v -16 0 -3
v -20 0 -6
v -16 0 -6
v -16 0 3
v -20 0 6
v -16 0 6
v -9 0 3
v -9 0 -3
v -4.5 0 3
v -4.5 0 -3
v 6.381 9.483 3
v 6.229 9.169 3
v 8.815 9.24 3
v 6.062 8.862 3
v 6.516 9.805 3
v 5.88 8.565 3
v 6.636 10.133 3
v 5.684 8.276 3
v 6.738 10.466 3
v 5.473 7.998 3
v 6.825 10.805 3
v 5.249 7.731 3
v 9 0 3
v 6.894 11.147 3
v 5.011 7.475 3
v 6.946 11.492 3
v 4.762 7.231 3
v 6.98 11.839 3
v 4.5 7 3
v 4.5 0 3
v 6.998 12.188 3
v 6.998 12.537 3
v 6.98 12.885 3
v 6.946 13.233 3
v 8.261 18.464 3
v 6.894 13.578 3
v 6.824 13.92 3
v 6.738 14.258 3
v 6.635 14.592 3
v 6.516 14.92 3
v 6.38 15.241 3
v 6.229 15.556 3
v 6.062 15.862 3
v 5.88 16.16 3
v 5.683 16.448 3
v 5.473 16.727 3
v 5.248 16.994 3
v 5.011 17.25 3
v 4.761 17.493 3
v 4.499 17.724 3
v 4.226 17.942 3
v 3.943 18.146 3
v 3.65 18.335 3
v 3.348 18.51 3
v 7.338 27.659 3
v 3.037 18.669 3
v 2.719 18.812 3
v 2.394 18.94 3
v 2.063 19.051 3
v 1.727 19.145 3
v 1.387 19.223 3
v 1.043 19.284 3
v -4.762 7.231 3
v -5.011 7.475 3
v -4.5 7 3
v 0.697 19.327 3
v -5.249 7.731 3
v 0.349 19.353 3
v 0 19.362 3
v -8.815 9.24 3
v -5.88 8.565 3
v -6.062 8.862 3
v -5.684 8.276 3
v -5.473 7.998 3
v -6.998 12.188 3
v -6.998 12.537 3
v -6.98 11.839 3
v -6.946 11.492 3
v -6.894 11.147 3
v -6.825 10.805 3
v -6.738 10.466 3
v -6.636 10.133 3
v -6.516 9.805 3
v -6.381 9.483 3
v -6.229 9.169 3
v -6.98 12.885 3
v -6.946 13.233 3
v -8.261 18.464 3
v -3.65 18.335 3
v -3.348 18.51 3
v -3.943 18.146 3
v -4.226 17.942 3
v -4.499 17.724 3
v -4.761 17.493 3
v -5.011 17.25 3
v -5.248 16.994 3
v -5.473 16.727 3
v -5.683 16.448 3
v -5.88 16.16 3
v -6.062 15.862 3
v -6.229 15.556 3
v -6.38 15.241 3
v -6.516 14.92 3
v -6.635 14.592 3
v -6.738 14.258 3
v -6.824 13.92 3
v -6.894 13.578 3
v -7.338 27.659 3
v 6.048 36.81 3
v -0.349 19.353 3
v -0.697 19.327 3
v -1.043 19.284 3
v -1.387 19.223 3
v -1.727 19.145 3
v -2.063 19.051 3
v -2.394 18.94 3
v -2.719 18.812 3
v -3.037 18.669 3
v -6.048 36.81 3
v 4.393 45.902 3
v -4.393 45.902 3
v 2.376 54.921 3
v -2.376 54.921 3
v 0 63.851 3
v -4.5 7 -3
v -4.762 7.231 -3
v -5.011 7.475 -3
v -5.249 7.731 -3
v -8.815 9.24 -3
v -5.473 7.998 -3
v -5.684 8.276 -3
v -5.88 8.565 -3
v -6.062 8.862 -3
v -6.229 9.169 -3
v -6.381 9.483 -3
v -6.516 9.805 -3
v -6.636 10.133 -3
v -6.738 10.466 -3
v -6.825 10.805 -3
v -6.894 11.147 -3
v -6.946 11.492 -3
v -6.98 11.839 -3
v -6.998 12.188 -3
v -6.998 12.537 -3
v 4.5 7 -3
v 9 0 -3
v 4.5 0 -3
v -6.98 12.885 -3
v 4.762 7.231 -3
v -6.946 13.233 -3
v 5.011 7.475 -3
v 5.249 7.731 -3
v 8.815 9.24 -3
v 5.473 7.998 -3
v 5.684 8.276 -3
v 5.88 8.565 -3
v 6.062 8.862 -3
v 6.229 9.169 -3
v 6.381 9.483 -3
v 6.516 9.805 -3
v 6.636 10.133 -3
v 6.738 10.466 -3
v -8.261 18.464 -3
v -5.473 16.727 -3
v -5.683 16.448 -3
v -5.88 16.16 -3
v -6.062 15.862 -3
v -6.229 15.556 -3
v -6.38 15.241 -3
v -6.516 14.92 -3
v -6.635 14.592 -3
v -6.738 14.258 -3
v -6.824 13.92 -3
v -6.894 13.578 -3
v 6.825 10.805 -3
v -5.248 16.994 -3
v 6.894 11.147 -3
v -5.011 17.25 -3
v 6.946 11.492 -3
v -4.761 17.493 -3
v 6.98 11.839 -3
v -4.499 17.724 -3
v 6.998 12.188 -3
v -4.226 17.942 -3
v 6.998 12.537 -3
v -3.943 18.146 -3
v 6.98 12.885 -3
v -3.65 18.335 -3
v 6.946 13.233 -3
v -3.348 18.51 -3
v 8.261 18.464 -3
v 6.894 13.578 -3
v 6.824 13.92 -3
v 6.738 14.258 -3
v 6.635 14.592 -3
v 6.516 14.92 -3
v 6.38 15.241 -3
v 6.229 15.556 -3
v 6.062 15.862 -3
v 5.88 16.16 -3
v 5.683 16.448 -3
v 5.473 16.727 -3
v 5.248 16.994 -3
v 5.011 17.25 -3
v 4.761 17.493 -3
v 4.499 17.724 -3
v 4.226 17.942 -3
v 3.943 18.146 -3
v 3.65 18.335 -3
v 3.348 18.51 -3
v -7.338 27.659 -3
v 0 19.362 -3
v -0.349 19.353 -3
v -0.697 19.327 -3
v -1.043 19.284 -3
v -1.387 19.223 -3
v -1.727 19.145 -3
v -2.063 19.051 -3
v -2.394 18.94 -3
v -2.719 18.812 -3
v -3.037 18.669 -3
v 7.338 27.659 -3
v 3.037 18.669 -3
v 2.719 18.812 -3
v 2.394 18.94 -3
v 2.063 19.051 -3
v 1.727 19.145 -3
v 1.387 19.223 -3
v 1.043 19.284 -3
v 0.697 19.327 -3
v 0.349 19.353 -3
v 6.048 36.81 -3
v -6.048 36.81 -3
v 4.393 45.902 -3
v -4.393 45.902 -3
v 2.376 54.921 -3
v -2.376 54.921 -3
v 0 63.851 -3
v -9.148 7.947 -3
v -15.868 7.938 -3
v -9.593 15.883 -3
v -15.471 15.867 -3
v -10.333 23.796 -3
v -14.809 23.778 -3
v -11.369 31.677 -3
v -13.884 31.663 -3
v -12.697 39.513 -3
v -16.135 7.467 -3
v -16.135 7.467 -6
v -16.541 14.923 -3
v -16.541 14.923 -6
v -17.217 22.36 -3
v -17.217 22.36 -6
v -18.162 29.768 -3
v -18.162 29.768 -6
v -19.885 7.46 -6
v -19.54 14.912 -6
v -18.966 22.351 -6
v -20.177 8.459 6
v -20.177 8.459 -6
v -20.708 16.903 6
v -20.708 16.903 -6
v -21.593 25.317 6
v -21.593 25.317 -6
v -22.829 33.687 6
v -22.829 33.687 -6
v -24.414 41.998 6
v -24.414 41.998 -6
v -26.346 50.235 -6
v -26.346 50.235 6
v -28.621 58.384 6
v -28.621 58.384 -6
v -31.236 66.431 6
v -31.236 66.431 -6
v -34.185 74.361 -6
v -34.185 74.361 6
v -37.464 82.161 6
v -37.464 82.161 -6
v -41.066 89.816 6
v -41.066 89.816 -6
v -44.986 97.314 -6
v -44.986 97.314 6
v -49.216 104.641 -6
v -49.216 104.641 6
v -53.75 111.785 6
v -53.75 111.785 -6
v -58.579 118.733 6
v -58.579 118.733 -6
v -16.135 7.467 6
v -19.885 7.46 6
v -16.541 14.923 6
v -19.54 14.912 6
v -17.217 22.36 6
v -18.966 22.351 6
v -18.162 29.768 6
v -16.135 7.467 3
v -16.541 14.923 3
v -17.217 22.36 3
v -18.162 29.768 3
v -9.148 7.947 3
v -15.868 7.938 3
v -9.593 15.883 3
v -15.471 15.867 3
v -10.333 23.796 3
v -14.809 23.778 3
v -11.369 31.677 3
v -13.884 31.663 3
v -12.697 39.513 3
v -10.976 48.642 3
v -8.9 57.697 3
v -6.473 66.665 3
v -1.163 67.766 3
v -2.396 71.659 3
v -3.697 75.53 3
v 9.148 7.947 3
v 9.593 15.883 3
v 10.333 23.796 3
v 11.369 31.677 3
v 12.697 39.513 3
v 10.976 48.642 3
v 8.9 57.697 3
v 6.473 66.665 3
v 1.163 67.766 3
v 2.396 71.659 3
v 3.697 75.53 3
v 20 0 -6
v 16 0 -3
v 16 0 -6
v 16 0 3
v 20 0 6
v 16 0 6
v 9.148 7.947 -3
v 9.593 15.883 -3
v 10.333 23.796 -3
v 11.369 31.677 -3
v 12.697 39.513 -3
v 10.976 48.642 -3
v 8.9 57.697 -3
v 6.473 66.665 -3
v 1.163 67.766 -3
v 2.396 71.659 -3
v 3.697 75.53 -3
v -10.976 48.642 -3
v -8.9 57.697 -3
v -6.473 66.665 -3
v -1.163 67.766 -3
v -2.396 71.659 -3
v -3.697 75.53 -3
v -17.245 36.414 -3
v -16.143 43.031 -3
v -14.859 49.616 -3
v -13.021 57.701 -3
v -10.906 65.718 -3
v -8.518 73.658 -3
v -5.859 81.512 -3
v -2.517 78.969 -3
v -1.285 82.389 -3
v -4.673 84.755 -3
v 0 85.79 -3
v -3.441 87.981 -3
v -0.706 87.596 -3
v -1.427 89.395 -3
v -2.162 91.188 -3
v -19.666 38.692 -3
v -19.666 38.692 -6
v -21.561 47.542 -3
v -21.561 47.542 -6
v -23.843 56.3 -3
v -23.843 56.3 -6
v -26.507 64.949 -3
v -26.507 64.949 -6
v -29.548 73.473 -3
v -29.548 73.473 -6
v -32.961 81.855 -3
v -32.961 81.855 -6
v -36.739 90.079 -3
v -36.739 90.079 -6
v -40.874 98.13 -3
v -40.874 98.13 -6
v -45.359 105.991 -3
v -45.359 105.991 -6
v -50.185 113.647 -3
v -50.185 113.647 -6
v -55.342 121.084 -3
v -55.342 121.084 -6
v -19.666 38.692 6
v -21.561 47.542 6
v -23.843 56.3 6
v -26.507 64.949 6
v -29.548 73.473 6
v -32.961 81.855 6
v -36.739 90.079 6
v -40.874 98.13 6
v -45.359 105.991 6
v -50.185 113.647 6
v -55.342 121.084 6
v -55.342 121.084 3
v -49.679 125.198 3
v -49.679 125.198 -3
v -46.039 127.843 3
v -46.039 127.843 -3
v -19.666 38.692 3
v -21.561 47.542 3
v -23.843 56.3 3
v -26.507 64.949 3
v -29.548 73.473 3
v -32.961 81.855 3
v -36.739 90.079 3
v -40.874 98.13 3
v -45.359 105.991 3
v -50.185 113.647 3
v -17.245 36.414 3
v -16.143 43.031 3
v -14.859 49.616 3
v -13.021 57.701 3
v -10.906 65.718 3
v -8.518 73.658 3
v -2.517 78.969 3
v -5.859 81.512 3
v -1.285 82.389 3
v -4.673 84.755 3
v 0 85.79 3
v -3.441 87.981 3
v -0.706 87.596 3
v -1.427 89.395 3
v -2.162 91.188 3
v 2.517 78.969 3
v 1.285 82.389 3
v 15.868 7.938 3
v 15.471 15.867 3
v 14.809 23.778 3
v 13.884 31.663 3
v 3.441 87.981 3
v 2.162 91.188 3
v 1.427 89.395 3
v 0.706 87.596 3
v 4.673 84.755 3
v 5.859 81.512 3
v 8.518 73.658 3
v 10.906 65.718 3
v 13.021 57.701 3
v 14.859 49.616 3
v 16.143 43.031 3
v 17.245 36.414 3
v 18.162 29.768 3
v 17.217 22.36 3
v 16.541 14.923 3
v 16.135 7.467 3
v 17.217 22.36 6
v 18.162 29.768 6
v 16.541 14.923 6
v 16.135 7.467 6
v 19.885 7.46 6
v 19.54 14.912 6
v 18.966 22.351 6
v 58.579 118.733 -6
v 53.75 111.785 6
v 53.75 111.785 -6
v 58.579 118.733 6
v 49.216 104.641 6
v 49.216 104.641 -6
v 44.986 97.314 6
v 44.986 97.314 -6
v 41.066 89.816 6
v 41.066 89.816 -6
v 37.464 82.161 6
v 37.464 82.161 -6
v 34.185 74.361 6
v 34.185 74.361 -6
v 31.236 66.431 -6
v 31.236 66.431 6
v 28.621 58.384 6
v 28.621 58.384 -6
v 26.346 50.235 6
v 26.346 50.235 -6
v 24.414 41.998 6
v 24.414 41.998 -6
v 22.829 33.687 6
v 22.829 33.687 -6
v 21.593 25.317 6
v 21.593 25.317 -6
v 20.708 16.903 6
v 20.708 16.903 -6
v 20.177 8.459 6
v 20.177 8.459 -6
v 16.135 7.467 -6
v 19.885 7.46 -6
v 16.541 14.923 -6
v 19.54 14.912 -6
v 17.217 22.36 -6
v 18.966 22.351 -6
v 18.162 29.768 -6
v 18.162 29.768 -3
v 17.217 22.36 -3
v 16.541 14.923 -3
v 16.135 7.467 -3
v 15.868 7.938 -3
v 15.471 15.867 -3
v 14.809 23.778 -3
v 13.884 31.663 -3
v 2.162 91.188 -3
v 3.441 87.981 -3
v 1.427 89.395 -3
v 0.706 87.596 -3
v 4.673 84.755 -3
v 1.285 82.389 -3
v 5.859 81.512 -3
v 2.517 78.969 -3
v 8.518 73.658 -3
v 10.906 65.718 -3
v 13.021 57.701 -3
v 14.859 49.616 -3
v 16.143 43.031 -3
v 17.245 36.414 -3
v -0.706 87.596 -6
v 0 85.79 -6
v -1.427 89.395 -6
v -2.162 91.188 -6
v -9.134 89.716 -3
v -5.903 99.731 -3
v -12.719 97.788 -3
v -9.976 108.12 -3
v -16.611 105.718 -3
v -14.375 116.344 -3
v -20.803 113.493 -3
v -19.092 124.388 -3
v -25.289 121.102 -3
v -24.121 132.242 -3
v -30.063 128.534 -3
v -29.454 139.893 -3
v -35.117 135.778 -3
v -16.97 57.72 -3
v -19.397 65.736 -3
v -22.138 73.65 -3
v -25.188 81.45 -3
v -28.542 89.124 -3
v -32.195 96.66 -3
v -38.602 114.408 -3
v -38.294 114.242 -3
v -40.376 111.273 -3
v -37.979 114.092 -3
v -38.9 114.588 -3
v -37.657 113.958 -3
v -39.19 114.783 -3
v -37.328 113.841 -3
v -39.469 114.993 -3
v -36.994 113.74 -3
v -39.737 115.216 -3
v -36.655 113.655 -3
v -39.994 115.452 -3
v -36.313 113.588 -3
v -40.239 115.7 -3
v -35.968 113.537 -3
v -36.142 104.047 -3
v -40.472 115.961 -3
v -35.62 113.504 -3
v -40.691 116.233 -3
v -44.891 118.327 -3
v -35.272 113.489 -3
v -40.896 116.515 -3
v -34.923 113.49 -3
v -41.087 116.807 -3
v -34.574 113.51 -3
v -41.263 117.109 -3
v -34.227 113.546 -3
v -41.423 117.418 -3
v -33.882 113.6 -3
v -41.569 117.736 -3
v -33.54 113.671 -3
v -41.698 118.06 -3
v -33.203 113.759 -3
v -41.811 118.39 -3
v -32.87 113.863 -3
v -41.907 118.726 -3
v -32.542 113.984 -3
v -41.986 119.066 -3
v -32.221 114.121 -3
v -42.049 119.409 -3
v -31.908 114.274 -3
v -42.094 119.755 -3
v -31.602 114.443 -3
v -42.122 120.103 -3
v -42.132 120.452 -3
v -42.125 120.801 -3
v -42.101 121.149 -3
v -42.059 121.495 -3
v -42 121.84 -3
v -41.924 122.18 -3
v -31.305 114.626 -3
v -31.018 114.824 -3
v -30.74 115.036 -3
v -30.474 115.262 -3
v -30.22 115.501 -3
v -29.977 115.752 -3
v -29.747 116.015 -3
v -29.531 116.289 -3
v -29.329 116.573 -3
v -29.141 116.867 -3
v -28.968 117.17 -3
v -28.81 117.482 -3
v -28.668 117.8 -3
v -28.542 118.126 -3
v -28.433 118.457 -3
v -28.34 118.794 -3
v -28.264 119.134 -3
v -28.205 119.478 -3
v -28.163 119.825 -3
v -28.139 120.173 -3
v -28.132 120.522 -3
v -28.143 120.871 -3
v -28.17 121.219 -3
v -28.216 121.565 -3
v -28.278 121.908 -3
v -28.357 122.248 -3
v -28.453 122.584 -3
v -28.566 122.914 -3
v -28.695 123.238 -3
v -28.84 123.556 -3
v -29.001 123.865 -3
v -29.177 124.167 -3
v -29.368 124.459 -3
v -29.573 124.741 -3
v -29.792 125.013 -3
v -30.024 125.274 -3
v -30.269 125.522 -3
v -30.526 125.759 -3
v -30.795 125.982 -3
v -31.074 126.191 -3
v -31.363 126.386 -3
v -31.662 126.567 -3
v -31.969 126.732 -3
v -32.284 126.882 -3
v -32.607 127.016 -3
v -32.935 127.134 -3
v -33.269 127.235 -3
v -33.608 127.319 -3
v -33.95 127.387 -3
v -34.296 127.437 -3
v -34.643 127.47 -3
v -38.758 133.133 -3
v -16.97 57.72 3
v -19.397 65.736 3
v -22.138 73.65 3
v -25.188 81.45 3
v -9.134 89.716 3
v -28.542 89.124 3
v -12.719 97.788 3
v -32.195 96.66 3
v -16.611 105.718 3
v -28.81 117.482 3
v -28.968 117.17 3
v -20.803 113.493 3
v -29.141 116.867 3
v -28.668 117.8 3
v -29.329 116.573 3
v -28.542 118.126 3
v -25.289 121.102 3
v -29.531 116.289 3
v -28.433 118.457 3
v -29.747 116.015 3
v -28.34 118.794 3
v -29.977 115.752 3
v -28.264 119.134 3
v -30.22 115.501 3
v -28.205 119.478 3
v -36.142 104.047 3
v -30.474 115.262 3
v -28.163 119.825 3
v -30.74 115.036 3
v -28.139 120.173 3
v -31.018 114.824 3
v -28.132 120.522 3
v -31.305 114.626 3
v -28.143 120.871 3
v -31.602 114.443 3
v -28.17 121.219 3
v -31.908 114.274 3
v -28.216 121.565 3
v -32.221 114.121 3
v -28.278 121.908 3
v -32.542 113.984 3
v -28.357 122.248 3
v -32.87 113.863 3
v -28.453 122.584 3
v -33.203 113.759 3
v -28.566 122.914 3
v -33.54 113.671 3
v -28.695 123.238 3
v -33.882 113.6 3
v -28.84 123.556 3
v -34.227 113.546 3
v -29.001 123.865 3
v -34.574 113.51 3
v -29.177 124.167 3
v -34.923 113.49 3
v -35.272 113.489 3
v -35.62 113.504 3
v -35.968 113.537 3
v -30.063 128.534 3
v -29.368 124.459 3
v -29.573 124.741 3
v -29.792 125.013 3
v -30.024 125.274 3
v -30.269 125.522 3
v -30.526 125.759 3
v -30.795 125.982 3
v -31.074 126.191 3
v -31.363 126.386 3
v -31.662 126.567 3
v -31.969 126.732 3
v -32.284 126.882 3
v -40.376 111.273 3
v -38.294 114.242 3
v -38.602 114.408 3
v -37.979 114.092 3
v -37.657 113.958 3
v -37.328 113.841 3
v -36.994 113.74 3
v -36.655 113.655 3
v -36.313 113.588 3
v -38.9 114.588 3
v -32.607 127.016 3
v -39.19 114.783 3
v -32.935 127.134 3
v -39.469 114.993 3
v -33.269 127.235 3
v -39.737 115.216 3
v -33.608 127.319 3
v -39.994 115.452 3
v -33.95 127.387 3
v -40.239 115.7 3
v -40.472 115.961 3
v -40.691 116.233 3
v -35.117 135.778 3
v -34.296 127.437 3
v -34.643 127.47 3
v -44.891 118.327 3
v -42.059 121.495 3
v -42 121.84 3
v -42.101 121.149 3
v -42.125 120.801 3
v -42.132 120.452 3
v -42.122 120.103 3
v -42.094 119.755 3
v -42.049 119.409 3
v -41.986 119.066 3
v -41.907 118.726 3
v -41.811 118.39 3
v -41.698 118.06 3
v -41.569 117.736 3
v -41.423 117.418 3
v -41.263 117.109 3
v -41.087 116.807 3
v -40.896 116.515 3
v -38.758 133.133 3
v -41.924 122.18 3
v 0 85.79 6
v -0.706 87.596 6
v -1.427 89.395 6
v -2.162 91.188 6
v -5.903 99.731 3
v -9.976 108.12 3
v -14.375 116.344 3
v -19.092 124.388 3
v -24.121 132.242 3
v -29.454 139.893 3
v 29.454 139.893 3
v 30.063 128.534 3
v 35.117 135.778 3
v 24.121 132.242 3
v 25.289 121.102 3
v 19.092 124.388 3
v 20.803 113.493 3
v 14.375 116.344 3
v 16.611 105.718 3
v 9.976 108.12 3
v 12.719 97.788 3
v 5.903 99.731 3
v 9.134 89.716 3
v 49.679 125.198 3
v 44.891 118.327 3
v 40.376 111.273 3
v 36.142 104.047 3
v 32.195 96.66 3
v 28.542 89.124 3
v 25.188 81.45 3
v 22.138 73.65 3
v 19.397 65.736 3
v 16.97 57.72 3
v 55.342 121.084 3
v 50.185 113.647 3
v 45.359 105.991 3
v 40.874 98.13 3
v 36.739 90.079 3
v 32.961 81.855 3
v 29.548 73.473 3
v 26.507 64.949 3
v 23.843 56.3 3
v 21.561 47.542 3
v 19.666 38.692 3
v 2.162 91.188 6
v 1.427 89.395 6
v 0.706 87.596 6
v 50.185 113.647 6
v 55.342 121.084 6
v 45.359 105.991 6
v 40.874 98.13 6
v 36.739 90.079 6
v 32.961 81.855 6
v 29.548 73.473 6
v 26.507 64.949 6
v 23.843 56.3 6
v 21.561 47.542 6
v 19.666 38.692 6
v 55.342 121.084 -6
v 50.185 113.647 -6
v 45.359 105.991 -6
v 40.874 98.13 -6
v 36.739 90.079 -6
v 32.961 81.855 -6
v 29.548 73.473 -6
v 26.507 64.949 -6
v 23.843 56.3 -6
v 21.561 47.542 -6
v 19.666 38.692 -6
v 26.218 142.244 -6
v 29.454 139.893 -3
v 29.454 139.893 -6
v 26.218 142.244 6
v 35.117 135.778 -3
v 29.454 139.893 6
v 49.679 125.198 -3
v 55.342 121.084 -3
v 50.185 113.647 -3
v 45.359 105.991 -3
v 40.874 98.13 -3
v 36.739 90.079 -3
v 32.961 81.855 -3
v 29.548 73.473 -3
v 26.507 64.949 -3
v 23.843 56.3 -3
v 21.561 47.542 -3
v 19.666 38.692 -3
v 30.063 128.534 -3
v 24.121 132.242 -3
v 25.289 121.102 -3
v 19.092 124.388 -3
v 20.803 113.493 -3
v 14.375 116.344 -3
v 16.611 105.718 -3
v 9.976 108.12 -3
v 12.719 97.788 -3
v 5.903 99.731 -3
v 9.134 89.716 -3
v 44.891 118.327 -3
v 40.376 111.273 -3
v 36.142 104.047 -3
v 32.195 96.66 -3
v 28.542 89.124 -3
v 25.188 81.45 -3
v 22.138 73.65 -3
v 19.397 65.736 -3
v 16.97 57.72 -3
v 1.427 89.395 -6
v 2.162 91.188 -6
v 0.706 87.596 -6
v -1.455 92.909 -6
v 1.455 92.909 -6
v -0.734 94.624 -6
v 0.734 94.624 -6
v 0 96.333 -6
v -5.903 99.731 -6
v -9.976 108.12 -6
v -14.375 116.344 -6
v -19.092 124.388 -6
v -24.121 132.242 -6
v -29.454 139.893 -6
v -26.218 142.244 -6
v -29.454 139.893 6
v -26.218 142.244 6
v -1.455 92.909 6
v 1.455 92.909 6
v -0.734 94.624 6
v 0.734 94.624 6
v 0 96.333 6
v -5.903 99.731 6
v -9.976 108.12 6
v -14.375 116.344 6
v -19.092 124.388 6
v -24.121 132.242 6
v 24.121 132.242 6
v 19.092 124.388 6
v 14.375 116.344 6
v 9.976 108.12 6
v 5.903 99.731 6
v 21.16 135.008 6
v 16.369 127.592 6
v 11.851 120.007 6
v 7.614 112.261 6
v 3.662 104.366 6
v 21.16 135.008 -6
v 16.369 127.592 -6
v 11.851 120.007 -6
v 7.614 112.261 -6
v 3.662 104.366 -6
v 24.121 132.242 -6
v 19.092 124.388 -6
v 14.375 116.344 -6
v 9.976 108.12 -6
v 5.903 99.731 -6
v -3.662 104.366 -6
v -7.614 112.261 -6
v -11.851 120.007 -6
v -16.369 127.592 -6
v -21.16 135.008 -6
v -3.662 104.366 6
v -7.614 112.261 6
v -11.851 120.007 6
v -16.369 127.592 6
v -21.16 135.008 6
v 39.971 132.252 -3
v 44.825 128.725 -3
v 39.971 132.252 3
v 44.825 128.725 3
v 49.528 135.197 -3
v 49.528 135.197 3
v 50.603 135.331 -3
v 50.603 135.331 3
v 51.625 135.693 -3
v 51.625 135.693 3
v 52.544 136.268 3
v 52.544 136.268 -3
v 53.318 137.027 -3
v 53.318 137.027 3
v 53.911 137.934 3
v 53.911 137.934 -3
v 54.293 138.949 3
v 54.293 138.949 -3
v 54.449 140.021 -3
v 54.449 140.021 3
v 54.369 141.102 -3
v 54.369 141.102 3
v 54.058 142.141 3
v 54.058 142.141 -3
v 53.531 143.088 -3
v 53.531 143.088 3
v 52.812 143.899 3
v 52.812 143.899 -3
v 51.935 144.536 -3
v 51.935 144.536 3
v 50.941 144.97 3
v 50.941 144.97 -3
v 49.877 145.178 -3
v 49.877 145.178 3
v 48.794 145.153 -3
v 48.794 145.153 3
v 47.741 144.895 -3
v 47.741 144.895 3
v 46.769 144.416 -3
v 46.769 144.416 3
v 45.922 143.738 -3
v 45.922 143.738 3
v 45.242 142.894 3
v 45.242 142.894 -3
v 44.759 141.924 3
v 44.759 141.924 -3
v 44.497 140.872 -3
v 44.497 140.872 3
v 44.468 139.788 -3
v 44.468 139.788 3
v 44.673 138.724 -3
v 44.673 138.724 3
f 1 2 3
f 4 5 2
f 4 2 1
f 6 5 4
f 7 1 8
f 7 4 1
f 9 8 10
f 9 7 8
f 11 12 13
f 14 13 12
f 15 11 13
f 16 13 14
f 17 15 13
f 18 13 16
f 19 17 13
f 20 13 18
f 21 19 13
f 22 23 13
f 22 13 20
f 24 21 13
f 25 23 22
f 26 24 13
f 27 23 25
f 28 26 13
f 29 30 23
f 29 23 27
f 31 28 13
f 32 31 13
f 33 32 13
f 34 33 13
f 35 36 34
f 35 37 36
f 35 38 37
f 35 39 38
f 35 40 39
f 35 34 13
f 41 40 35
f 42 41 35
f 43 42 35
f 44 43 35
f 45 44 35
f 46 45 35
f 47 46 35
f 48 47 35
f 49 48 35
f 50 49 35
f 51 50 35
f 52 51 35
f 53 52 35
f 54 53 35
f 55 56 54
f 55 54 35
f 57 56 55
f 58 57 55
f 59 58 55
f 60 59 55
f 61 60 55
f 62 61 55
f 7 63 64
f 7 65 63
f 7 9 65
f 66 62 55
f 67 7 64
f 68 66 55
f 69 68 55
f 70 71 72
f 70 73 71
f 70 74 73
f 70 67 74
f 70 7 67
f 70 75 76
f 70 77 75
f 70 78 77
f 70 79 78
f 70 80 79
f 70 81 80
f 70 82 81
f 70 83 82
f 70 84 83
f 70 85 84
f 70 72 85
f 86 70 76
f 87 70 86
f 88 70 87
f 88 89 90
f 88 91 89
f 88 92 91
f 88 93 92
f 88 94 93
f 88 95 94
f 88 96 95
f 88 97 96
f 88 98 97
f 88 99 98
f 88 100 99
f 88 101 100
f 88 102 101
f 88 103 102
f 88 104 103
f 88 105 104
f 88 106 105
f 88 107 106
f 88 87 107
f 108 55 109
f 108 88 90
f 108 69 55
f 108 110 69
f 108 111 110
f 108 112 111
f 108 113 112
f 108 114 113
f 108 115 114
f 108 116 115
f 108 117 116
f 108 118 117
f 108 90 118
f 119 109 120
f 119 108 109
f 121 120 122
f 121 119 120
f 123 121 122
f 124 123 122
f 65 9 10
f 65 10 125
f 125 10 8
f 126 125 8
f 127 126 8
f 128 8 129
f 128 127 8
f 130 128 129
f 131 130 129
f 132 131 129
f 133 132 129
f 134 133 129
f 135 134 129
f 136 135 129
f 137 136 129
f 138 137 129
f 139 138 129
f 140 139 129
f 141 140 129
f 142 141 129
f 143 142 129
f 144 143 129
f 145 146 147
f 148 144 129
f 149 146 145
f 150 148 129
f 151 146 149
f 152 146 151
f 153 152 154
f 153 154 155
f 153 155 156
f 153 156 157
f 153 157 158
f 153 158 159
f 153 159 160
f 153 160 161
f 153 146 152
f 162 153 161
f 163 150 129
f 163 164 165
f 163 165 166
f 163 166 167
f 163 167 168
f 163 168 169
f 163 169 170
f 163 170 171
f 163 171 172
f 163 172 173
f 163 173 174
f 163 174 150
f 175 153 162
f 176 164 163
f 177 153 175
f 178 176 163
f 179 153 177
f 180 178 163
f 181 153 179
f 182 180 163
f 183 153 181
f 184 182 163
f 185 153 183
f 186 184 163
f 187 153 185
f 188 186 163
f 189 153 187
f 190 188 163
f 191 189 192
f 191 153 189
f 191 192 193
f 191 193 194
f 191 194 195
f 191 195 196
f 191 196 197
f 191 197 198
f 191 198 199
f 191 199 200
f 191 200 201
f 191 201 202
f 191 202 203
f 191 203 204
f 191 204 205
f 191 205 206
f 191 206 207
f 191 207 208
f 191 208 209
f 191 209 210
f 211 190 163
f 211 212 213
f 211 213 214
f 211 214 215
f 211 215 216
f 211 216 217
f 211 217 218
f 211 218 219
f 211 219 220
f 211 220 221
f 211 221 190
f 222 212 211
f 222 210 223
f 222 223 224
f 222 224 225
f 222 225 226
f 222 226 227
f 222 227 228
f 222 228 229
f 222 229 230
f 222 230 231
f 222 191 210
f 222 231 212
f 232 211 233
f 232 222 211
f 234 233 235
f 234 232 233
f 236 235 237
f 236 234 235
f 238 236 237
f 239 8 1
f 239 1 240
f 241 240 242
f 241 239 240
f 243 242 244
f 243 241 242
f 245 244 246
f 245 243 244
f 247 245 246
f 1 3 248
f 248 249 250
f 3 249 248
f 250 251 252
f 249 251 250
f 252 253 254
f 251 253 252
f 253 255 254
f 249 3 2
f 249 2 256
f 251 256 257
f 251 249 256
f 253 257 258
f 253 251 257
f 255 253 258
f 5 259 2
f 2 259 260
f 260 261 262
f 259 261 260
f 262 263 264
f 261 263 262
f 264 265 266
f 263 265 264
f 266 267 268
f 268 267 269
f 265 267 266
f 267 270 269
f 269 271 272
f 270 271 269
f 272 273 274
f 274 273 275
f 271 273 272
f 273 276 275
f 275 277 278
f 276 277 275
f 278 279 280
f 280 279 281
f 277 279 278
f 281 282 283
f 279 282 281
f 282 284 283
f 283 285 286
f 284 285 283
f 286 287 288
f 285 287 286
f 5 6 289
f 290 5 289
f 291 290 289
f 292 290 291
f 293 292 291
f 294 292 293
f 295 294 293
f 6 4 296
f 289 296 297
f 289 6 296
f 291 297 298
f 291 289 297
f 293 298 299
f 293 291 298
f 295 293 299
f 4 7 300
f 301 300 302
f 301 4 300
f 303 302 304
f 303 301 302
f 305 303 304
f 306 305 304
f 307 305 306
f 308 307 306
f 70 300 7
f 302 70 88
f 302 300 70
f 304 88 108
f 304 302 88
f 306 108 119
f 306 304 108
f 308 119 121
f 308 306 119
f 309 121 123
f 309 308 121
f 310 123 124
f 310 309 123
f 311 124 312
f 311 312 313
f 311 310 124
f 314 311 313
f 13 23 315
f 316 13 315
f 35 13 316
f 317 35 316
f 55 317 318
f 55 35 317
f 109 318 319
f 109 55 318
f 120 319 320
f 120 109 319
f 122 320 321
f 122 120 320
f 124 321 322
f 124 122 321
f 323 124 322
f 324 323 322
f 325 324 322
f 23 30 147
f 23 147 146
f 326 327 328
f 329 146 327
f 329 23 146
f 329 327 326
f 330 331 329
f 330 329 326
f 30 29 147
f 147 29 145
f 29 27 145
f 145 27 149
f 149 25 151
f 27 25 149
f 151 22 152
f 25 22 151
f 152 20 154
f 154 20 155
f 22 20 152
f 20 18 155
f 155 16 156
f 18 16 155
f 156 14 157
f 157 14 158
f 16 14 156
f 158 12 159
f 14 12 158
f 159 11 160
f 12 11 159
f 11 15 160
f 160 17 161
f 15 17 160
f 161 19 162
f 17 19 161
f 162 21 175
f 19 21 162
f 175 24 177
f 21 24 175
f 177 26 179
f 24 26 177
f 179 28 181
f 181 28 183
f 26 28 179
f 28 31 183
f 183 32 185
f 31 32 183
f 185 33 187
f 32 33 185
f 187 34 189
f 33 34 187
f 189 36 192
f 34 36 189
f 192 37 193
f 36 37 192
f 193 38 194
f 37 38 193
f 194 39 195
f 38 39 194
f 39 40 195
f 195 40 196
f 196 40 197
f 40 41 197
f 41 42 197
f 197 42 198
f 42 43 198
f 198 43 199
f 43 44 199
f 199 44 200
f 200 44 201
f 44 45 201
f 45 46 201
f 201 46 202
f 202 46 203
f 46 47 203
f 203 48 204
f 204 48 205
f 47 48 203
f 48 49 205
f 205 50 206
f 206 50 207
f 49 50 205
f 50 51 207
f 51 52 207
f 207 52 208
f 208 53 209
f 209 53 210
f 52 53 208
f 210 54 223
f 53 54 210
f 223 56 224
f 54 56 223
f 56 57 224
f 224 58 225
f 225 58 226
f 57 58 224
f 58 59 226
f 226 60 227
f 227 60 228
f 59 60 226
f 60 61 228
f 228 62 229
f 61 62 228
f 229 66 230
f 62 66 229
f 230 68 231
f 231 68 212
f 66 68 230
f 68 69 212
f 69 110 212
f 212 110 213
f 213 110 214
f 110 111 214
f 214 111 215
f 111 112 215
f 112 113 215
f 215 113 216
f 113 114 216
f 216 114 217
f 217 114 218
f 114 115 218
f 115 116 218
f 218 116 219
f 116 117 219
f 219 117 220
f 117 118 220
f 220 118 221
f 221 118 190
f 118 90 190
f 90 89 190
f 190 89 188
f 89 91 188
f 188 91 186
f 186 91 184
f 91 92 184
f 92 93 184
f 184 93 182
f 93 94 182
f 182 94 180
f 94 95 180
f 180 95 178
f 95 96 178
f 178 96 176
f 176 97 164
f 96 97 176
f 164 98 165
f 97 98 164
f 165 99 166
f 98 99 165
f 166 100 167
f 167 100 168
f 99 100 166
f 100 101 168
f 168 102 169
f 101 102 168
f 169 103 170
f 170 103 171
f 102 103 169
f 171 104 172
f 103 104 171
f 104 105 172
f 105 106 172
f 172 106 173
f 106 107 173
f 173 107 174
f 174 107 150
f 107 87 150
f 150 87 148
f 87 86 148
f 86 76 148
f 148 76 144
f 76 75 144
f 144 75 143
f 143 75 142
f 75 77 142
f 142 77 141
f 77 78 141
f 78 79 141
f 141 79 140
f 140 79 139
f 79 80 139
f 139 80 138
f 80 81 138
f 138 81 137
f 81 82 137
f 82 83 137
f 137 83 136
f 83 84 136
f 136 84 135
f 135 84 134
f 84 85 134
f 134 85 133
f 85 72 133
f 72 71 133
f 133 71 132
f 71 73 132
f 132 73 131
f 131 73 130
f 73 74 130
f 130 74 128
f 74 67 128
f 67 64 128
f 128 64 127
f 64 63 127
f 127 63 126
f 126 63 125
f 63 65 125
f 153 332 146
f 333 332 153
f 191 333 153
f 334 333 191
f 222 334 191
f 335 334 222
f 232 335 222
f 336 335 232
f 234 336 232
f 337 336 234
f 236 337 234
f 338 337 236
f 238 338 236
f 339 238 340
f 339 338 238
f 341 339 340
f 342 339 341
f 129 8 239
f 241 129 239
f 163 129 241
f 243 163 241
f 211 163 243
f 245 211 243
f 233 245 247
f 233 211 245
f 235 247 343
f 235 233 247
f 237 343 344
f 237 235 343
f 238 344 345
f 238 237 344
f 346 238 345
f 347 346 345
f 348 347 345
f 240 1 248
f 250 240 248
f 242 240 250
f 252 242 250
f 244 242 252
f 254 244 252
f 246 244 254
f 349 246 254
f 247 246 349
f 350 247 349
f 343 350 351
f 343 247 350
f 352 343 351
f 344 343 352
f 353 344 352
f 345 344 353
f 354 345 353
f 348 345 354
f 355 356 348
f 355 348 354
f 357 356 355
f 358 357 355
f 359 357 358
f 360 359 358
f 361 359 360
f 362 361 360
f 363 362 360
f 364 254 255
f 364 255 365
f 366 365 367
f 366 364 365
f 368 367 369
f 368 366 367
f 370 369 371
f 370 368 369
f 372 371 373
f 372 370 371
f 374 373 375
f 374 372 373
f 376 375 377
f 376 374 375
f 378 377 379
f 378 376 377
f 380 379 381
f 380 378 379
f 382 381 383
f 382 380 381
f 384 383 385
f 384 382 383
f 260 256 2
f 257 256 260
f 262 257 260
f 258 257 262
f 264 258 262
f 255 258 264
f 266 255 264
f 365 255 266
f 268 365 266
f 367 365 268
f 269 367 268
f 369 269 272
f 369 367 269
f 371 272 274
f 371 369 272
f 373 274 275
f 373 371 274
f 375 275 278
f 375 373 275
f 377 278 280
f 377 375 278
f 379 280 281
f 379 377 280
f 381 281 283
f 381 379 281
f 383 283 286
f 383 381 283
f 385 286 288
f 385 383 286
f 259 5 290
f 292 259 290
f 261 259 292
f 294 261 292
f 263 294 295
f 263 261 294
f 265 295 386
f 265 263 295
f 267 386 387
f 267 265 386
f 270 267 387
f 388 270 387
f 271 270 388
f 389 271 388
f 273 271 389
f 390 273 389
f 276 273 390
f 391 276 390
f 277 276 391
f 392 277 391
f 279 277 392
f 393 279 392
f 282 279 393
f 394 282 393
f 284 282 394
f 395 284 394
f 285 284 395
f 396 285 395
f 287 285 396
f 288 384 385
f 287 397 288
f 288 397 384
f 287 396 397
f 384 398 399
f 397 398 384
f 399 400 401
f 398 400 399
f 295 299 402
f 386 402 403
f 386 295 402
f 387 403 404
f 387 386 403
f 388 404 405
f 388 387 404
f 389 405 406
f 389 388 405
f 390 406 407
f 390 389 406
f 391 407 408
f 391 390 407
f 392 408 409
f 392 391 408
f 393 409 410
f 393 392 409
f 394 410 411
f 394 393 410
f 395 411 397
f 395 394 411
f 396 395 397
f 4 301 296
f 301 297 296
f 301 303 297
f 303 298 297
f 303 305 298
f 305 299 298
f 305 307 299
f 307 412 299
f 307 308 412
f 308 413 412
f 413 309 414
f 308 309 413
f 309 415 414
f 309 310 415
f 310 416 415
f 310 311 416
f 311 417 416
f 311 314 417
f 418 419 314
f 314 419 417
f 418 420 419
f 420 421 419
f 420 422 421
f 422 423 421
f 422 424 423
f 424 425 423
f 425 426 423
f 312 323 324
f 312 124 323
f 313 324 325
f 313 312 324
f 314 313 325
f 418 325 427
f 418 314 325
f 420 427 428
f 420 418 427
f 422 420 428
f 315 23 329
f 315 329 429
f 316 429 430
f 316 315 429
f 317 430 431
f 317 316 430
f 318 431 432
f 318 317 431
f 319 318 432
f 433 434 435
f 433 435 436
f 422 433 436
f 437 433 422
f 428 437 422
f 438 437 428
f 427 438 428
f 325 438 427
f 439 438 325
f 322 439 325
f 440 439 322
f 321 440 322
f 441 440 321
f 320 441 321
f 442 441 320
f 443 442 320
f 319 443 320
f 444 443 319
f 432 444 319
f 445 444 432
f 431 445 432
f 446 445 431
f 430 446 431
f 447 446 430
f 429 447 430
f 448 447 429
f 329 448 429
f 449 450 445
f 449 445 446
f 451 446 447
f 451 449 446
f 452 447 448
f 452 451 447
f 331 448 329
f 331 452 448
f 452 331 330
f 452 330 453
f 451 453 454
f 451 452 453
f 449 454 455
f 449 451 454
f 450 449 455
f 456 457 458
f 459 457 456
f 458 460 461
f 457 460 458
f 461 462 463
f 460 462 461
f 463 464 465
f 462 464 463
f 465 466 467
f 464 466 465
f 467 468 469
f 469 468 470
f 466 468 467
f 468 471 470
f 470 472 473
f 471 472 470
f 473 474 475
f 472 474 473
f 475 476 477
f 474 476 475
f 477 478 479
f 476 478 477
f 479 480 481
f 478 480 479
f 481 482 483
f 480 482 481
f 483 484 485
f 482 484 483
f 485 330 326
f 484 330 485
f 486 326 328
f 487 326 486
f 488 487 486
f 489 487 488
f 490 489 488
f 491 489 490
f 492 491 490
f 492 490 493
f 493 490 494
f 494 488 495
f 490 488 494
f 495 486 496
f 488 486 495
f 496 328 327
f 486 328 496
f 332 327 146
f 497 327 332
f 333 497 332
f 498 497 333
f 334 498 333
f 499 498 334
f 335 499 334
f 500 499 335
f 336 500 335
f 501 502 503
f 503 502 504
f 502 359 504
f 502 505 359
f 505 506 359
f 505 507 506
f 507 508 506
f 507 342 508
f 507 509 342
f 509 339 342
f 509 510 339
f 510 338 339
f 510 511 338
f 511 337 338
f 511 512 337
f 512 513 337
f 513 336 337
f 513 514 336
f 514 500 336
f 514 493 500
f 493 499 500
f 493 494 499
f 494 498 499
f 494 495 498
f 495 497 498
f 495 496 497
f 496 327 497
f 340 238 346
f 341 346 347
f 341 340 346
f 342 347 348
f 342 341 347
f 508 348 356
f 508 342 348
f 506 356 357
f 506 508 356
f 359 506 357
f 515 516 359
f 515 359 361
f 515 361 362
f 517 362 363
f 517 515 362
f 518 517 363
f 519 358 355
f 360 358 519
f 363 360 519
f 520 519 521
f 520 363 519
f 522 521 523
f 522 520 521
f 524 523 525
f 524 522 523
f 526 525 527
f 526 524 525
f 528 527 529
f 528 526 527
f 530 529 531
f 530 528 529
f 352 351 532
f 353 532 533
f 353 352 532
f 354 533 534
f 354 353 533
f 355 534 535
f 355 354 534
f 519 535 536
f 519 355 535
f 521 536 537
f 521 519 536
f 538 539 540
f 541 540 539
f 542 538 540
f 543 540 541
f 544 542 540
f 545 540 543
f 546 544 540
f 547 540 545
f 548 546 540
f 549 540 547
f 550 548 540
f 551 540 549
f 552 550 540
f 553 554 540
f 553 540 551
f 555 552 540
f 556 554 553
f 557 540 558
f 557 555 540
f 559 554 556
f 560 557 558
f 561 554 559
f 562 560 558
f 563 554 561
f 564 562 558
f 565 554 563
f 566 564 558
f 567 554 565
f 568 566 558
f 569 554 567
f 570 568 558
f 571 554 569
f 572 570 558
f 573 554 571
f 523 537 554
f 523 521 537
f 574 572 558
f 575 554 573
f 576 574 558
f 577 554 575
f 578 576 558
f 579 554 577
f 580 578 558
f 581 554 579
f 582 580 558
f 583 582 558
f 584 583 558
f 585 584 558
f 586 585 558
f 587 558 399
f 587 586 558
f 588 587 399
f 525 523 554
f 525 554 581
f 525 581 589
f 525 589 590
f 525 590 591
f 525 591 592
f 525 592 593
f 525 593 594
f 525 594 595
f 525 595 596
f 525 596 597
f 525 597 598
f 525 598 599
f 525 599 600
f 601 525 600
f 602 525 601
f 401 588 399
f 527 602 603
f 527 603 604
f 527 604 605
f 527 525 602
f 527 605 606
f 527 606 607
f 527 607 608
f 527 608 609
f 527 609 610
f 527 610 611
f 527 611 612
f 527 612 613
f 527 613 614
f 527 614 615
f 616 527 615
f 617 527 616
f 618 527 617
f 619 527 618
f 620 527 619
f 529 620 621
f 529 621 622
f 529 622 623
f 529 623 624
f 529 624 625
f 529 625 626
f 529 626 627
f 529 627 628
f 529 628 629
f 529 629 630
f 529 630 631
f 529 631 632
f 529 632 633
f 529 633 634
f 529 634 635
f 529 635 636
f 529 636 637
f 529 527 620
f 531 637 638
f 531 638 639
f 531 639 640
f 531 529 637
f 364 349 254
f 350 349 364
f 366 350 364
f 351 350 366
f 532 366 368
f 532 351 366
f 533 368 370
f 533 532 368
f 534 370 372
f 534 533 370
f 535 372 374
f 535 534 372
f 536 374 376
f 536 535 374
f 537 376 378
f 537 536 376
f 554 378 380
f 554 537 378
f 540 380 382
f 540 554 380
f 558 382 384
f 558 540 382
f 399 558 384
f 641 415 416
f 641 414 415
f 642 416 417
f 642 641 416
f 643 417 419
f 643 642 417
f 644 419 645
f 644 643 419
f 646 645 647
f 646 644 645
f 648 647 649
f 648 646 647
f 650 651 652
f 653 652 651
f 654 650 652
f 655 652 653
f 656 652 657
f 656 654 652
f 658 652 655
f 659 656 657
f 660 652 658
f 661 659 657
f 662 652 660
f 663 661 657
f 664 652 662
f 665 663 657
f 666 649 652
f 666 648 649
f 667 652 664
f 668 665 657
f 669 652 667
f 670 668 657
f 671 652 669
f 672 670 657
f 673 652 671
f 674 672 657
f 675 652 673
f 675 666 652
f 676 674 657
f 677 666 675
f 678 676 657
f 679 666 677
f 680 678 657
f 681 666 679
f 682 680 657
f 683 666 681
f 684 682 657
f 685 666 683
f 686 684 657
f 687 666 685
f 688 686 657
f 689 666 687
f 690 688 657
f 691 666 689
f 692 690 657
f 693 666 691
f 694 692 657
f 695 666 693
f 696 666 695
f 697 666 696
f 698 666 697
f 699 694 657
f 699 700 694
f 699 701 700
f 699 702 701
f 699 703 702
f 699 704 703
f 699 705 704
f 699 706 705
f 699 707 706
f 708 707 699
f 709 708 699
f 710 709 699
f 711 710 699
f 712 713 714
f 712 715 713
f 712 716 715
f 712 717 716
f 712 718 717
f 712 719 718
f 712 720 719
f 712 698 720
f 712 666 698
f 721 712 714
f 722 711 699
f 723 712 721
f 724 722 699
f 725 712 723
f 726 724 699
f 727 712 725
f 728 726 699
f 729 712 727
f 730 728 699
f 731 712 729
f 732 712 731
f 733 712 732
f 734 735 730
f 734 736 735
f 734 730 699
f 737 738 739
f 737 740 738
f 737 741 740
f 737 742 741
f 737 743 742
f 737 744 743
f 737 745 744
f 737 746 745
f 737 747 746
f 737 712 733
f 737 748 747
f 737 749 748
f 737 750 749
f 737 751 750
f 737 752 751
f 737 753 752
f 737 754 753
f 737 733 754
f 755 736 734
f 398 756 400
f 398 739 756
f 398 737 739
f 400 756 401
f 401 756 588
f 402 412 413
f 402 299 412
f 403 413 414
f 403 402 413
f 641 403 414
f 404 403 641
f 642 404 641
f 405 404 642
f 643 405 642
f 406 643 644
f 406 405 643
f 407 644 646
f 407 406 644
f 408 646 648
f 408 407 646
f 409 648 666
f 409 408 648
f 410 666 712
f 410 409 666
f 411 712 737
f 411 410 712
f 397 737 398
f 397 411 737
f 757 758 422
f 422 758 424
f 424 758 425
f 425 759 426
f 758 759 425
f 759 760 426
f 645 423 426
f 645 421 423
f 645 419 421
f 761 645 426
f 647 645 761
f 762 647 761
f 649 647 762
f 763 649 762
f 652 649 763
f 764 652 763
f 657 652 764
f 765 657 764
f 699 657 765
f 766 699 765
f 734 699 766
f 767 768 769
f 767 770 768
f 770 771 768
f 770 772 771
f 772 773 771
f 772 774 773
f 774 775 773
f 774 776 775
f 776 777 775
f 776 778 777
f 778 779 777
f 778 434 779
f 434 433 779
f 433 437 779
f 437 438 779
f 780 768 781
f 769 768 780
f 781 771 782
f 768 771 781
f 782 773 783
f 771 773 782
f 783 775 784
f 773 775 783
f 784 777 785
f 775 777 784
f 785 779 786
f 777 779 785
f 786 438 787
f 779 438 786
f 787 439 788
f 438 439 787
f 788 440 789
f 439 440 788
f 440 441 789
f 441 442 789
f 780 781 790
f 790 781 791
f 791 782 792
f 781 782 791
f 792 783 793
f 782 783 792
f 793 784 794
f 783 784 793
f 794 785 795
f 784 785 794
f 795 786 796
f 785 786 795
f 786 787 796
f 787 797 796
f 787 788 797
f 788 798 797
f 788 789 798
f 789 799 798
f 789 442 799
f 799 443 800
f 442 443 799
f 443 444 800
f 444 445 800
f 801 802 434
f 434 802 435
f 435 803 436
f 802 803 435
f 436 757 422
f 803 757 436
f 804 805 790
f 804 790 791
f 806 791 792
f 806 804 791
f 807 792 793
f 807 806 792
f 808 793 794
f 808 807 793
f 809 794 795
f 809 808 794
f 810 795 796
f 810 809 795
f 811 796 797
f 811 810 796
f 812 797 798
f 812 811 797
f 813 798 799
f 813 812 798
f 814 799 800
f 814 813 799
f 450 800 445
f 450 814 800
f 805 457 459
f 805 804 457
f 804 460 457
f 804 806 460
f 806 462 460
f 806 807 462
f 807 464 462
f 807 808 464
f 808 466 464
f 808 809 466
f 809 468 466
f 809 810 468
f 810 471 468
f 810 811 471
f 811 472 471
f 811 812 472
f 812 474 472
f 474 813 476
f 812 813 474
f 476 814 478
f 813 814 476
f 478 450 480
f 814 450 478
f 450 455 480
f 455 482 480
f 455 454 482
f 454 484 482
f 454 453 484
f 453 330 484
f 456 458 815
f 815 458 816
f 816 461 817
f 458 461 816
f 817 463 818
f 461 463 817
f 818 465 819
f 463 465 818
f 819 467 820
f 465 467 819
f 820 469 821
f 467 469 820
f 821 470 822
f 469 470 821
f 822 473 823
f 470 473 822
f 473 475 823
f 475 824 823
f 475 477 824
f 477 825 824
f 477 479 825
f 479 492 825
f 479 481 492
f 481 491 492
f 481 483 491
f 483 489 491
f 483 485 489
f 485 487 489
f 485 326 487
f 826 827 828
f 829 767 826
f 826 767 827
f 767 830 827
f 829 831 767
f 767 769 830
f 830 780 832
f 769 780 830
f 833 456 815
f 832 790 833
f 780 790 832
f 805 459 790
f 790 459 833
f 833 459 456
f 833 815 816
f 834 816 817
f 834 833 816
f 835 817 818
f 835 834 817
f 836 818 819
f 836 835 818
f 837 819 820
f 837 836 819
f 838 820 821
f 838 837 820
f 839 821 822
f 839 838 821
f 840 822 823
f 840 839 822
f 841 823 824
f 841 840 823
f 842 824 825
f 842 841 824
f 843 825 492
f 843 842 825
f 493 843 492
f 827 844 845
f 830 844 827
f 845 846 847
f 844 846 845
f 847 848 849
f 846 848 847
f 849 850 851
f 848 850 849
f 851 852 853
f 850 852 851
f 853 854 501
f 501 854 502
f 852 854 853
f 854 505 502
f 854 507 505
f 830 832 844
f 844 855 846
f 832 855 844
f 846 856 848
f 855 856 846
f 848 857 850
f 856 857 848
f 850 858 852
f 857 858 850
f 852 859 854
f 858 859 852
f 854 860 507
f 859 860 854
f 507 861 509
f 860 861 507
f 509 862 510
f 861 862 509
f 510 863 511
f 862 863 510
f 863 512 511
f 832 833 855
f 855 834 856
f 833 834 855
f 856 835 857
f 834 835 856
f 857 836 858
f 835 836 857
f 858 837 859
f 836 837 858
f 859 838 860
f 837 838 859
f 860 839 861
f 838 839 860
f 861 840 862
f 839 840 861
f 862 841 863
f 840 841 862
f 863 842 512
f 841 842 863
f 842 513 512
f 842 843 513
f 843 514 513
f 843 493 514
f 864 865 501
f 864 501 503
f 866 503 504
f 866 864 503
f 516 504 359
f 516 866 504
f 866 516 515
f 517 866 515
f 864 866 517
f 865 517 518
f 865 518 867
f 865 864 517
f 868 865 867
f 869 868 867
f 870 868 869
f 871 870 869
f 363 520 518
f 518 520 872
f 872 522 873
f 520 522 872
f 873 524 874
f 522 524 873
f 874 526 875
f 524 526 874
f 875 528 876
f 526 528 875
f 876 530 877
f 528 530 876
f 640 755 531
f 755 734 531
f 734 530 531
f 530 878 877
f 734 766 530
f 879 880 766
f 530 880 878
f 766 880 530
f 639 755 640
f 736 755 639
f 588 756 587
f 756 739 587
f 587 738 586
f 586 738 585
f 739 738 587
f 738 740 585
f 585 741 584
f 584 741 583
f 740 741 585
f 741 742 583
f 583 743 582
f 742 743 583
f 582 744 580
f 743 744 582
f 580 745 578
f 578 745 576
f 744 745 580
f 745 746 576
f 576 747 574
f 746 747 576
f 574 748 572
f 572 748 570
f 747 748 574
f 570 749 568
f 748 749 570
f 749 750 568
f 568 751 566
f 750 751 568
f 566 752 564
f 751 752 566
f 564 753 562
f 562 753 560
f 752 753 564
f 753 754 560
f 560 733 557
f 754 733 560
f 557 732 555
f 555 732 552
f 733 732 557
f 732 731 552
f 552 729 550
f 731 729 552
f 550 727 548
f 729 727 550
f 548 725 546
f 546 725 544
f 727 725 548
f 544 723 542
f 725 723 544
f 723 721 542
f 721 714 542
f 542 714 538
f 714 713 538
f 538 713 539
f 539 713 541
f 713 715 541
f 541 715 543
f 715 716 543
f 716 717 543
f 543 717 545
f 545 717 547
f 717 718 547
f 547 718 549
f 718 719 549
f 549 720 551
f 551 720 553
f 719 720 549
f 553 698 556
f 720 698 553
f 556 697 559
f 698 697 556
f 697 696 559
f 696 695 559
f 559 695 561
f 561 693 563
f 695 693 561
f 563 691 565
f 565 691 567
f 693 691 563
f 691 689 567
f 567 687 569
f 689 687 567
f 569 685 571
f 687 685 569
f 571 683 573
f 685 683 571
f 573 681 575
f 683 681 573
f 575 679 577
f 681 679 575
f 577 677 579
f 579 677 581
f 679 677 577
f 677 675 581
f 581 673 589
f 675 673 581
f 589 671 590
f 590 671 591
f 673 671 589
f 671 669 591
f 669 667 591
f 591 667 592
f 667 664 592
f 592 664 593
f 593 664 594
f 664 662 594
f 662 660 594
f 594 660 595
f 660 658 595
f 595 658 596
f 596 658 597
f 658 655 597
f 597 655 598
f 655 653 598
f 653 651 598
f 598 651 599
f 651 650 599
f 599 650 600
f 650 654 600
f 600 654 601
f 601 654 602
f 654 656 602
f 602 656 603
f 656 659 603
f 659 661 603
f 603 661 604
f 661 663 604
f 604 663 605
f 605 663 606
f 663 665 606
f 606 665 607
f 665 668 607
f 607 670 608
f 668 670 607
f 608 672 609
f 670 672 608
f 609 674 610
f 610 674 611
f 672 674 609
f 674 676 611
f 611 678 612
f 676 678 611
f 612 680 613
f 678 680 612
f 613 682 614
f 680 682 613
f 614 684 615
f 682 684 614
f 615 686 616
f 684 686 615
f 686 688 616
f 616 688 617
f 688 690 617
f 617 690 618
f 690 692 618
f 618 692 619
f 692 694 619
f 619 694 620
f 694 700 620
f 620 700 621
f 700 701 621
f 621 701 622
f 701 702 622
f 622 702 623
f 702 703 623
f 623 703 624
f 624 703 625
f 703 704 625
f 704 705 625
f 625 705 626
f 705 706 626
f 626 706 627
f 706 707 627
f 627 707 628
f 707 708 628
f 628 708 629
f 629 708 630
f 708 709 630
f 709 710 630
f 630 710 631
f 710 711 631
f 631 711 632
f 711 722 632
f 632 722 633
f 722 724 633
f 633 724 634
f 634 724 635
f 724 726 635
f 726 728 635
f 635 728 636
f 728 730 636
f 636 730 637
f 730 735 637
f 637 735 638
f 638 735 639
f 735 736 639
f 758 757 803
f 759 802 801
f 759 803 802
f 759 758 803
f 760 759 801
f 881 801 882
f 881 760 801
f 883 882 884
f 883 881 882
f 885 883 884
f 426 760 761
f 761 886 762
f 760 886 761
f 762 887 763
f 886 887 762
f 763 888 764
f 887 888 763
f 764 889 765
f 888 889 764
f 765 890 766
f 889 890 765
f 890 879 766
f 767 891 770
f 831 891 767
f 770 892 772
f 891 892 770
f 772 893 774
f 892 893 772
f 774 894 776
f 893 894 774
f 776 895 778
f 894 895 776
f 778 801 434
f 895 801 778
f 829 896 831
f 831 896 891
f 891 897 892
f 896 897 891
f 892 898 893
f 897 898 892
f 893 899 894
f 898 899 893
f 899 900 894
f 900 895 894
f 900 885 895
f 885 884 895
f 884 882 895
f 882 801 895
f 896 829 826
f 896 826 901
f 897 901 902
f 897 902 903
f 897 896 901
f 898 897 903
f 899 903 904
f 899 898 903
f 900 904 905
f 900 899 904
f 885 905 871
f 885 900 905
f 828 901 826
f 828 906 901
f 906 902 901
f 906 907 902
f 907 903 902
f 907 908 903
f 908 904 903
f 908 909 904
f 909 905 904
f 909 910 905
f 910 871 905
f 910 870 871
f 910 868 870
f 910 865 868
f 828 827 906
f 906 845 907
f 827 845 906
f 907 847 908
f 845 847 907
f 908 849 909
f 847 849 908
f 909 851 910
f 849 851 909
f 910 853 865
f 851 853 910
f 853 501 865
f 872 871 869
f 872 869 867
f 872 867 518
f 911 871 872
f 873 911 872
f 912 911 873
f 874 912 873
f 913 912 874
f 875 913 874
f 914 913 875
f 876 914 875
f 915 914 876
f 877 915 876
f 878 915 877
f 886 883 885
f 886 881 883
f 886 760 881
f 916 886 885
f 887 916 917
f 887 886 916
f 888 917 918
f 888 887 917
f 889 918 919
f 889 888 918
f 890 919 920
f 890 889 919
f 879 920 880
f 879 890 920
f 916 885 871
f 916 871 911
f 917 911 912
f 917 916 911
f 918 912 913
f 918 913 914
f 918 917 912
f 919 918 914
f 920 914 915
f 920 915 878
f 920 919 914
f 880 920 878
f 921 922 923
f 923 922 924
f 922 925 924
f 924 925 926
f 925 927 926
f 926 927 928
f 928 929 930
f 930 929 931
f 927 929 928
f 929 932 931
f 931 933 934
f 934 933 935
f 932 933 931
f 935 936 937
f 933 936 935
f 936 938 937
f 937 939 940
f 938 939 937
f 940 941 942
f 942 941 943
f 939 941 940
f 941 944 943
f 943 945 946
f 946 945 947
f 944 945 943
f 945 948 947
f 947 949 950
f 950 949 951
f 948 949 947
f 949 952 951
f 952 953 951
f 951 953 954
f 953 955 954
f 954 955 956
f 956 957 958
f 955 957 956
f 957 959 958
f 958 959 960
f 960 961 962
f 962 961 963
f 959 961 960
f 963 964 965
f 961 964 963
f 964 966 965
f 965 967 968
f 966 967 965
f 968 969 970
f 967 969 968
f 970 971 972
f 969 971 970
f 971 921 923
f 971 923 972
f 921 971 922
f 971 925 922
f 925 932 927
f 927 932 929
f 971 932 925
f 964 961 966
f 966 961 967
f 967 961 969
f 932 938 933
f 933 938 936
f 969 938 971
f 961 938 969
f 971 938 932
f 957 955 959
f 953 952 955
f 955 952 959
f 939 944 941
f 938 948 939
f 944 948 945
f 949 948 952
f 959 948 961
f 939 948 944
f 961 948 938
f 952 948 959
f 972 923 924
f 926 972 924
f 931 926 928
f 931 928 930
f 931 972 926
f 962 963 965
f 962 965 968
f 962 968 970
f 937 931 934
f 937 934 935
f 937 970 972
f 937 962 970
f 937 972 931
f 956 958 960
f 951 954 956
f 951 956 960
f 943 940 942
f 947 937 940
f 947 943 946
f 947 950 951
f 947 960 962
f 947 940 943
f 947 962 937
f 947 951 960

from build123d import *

# Parameters (mm, degrees)
SKETCH013_W          = 32
SKETCH013_H          = 3
POCKET_DEPTH         = 6.001
POCKET_DEPTH_BACK    = -6.001
POCKET001_DEPTH      = 6.001
POCKET001_DEPTH_BACK = -6.001
PAD001_DEPTH         = 3


with BuildPart() as main:
    # AdditivePipe: sweep along a path in Sketch
    with BuildLine(Plane.XY) as additivepipe_path:
        ThreePointArc((0, 0), (-10.865453, 68.601773), (-42.398227, 130.488326))
    # Sketch002 → AdditivePipe (sweep)
    with BuildSketch(Plane.XZ):
        Polygon((-20, 6), (-20, -6), (-16, -6), (-16, -3), (-9, -3), (9, -3), (16, -3), (16, -6), (20, -6), (20, 6), (16, 6), (16, 3), (9, 3), (-9, 3), (-16, 3), (-16, 6), align=None)
    sweep(path=additivepipe_path.line)

    # AdditivePipe001: sweep along a path in Sketch001
    with BuildLine(Plane.XY) as additivepipe001_path:
        ThreePointArc((42.398227, 130.488326), (10.865453, 68.601773), (0, 0))
    # Sketch002 → AdditivePipe001 (sweep)
    with BuildSketch(Plane.XZ):
        Polygon((-20, 6), (-20, -6), (-16, -6), (-16, -3), (-9, -3), (9, -3), (16, -3), (16, -6), (20, -6), (20, 6), (16, 6), (16, 3), (9, 3), (-9, 3), (-16, 3), (-16, 6), align=None)
    sweep(path=additivepipe001_path.line)

    # SubtractivePipe: sweep along a path in Sketch
    with BuildLine(Plane.XY) as subtractivepipe_path:
        ThreePointArc((0, 0), (-10.865453, 68.601773), (-42.398227, 130.488326))
    # Sketch013 (on Face1 of AdditivePipe001) → SubtractivePipe (sweep, cut)
    with BuildSketch(Plane.XZ):
        with Locations((0, 4.5)):
            Rectangle(SKETCH013_W, SKETCH013_H)
    subtractivepipe = sweep(path=subtractivepipe_path.line, mode=Mode.SUBTRACT)

    # SubtractivePipe001: sweep along a path in Sketch001
    with BuildLine(Plane.XY) as subtractivepipe001_path:
        ThreePointArc((42.398227, 130.488326), (10.865453, 68.601773), (0, 0))
    # Sketch013 (on Face1 of AdditivePipe001) → SubtractivePipe001 (sweep, cut)
    with BuildSketch(Plane.XZ):
        with Locations((0, 4.5)):
            Rectangle(SKETCH013_W, SKETCH013_H)
    subtractivepipe001 = sweep(path=subtractivepipe001_path.line, mode=Mode.SUBTRACT)

    # Mirrored: SubtractivePipe across XY
    add(subtractivepipe.mirror(Plane.XY), mode=Mode.SUBTRACT)

    # Mirrored001: SubtractivePipe001 across XY
    add(subtractivepipe001.mirror(Plane.XY), mode=Mode.SUBTRACT)

    # Sketch007 → Pocket (cut, two sides)
    with BuildSketch(Plane.XY) as pocket_sk:
        with BuildLine():
            Line((-4.5, 0), (4.5, 0))
            Line((4.5, 0), (4.5, 7))
            ThreePointArc((4.5, 7), (0, 19.361903), (-4.5, 7))
            Line((-4.5, 0), (-4.5, 7))
        make_face()
    extrude(amount=-POCKET_DEPTH, mode=Mode.SUBTRACT)
    extrude(pocket_sk.sketch, amount=-POCKET_DEPTH_BACK, mode=Mode.SUBTRACT)

    # Sketch008 → Pocket001 (cut, two sides)
    with BuildSketch(Plane.XY) as pocket001_sk:
        with BuildLine():
            Line((-46.038804, 127.843292), (-38.757651, 133.13336))
            Line((-38.757651, 133.13336), (-34.643154, 127.470241))
            ThreePointArc((-41.924307, 122.180173), (-31.017586, 114.824218), (-34.643154, 127.470241))
            Line((-46.038804, 127.843292), (-41.924307, 122.180173))
        make_face()
    extrude(amount=-POCKET001_DEPTH, mode=Mode.SUBTRACT)
    extrude(pocket001_sk.sketch, amount=-POCKET001_DEPTH_BACK, mode=Mode.SUBTRACT)


with BuildPart() as male3:
    # Sketch011 → Pad001 (new body, symmetric)
    with BuildSketch(Plane.XY):
        with BuildLine():
            Line((39.971176, 132.251682), (44.825278, 128.72497))
            Line((44.825278, 128.72497), (49.52756, 135.197106))
            ThreePointArc((49.52756, 135.197106), (52.390577, 144.241615), (44.673458, 138.723818))
            Line((39.971176, 132.251682), (44.673458, 138.723818))
        make_face()
    extrude(amount=PAD001_DEPTH, both=True)


solid = Compound([main.part, male3.part])
